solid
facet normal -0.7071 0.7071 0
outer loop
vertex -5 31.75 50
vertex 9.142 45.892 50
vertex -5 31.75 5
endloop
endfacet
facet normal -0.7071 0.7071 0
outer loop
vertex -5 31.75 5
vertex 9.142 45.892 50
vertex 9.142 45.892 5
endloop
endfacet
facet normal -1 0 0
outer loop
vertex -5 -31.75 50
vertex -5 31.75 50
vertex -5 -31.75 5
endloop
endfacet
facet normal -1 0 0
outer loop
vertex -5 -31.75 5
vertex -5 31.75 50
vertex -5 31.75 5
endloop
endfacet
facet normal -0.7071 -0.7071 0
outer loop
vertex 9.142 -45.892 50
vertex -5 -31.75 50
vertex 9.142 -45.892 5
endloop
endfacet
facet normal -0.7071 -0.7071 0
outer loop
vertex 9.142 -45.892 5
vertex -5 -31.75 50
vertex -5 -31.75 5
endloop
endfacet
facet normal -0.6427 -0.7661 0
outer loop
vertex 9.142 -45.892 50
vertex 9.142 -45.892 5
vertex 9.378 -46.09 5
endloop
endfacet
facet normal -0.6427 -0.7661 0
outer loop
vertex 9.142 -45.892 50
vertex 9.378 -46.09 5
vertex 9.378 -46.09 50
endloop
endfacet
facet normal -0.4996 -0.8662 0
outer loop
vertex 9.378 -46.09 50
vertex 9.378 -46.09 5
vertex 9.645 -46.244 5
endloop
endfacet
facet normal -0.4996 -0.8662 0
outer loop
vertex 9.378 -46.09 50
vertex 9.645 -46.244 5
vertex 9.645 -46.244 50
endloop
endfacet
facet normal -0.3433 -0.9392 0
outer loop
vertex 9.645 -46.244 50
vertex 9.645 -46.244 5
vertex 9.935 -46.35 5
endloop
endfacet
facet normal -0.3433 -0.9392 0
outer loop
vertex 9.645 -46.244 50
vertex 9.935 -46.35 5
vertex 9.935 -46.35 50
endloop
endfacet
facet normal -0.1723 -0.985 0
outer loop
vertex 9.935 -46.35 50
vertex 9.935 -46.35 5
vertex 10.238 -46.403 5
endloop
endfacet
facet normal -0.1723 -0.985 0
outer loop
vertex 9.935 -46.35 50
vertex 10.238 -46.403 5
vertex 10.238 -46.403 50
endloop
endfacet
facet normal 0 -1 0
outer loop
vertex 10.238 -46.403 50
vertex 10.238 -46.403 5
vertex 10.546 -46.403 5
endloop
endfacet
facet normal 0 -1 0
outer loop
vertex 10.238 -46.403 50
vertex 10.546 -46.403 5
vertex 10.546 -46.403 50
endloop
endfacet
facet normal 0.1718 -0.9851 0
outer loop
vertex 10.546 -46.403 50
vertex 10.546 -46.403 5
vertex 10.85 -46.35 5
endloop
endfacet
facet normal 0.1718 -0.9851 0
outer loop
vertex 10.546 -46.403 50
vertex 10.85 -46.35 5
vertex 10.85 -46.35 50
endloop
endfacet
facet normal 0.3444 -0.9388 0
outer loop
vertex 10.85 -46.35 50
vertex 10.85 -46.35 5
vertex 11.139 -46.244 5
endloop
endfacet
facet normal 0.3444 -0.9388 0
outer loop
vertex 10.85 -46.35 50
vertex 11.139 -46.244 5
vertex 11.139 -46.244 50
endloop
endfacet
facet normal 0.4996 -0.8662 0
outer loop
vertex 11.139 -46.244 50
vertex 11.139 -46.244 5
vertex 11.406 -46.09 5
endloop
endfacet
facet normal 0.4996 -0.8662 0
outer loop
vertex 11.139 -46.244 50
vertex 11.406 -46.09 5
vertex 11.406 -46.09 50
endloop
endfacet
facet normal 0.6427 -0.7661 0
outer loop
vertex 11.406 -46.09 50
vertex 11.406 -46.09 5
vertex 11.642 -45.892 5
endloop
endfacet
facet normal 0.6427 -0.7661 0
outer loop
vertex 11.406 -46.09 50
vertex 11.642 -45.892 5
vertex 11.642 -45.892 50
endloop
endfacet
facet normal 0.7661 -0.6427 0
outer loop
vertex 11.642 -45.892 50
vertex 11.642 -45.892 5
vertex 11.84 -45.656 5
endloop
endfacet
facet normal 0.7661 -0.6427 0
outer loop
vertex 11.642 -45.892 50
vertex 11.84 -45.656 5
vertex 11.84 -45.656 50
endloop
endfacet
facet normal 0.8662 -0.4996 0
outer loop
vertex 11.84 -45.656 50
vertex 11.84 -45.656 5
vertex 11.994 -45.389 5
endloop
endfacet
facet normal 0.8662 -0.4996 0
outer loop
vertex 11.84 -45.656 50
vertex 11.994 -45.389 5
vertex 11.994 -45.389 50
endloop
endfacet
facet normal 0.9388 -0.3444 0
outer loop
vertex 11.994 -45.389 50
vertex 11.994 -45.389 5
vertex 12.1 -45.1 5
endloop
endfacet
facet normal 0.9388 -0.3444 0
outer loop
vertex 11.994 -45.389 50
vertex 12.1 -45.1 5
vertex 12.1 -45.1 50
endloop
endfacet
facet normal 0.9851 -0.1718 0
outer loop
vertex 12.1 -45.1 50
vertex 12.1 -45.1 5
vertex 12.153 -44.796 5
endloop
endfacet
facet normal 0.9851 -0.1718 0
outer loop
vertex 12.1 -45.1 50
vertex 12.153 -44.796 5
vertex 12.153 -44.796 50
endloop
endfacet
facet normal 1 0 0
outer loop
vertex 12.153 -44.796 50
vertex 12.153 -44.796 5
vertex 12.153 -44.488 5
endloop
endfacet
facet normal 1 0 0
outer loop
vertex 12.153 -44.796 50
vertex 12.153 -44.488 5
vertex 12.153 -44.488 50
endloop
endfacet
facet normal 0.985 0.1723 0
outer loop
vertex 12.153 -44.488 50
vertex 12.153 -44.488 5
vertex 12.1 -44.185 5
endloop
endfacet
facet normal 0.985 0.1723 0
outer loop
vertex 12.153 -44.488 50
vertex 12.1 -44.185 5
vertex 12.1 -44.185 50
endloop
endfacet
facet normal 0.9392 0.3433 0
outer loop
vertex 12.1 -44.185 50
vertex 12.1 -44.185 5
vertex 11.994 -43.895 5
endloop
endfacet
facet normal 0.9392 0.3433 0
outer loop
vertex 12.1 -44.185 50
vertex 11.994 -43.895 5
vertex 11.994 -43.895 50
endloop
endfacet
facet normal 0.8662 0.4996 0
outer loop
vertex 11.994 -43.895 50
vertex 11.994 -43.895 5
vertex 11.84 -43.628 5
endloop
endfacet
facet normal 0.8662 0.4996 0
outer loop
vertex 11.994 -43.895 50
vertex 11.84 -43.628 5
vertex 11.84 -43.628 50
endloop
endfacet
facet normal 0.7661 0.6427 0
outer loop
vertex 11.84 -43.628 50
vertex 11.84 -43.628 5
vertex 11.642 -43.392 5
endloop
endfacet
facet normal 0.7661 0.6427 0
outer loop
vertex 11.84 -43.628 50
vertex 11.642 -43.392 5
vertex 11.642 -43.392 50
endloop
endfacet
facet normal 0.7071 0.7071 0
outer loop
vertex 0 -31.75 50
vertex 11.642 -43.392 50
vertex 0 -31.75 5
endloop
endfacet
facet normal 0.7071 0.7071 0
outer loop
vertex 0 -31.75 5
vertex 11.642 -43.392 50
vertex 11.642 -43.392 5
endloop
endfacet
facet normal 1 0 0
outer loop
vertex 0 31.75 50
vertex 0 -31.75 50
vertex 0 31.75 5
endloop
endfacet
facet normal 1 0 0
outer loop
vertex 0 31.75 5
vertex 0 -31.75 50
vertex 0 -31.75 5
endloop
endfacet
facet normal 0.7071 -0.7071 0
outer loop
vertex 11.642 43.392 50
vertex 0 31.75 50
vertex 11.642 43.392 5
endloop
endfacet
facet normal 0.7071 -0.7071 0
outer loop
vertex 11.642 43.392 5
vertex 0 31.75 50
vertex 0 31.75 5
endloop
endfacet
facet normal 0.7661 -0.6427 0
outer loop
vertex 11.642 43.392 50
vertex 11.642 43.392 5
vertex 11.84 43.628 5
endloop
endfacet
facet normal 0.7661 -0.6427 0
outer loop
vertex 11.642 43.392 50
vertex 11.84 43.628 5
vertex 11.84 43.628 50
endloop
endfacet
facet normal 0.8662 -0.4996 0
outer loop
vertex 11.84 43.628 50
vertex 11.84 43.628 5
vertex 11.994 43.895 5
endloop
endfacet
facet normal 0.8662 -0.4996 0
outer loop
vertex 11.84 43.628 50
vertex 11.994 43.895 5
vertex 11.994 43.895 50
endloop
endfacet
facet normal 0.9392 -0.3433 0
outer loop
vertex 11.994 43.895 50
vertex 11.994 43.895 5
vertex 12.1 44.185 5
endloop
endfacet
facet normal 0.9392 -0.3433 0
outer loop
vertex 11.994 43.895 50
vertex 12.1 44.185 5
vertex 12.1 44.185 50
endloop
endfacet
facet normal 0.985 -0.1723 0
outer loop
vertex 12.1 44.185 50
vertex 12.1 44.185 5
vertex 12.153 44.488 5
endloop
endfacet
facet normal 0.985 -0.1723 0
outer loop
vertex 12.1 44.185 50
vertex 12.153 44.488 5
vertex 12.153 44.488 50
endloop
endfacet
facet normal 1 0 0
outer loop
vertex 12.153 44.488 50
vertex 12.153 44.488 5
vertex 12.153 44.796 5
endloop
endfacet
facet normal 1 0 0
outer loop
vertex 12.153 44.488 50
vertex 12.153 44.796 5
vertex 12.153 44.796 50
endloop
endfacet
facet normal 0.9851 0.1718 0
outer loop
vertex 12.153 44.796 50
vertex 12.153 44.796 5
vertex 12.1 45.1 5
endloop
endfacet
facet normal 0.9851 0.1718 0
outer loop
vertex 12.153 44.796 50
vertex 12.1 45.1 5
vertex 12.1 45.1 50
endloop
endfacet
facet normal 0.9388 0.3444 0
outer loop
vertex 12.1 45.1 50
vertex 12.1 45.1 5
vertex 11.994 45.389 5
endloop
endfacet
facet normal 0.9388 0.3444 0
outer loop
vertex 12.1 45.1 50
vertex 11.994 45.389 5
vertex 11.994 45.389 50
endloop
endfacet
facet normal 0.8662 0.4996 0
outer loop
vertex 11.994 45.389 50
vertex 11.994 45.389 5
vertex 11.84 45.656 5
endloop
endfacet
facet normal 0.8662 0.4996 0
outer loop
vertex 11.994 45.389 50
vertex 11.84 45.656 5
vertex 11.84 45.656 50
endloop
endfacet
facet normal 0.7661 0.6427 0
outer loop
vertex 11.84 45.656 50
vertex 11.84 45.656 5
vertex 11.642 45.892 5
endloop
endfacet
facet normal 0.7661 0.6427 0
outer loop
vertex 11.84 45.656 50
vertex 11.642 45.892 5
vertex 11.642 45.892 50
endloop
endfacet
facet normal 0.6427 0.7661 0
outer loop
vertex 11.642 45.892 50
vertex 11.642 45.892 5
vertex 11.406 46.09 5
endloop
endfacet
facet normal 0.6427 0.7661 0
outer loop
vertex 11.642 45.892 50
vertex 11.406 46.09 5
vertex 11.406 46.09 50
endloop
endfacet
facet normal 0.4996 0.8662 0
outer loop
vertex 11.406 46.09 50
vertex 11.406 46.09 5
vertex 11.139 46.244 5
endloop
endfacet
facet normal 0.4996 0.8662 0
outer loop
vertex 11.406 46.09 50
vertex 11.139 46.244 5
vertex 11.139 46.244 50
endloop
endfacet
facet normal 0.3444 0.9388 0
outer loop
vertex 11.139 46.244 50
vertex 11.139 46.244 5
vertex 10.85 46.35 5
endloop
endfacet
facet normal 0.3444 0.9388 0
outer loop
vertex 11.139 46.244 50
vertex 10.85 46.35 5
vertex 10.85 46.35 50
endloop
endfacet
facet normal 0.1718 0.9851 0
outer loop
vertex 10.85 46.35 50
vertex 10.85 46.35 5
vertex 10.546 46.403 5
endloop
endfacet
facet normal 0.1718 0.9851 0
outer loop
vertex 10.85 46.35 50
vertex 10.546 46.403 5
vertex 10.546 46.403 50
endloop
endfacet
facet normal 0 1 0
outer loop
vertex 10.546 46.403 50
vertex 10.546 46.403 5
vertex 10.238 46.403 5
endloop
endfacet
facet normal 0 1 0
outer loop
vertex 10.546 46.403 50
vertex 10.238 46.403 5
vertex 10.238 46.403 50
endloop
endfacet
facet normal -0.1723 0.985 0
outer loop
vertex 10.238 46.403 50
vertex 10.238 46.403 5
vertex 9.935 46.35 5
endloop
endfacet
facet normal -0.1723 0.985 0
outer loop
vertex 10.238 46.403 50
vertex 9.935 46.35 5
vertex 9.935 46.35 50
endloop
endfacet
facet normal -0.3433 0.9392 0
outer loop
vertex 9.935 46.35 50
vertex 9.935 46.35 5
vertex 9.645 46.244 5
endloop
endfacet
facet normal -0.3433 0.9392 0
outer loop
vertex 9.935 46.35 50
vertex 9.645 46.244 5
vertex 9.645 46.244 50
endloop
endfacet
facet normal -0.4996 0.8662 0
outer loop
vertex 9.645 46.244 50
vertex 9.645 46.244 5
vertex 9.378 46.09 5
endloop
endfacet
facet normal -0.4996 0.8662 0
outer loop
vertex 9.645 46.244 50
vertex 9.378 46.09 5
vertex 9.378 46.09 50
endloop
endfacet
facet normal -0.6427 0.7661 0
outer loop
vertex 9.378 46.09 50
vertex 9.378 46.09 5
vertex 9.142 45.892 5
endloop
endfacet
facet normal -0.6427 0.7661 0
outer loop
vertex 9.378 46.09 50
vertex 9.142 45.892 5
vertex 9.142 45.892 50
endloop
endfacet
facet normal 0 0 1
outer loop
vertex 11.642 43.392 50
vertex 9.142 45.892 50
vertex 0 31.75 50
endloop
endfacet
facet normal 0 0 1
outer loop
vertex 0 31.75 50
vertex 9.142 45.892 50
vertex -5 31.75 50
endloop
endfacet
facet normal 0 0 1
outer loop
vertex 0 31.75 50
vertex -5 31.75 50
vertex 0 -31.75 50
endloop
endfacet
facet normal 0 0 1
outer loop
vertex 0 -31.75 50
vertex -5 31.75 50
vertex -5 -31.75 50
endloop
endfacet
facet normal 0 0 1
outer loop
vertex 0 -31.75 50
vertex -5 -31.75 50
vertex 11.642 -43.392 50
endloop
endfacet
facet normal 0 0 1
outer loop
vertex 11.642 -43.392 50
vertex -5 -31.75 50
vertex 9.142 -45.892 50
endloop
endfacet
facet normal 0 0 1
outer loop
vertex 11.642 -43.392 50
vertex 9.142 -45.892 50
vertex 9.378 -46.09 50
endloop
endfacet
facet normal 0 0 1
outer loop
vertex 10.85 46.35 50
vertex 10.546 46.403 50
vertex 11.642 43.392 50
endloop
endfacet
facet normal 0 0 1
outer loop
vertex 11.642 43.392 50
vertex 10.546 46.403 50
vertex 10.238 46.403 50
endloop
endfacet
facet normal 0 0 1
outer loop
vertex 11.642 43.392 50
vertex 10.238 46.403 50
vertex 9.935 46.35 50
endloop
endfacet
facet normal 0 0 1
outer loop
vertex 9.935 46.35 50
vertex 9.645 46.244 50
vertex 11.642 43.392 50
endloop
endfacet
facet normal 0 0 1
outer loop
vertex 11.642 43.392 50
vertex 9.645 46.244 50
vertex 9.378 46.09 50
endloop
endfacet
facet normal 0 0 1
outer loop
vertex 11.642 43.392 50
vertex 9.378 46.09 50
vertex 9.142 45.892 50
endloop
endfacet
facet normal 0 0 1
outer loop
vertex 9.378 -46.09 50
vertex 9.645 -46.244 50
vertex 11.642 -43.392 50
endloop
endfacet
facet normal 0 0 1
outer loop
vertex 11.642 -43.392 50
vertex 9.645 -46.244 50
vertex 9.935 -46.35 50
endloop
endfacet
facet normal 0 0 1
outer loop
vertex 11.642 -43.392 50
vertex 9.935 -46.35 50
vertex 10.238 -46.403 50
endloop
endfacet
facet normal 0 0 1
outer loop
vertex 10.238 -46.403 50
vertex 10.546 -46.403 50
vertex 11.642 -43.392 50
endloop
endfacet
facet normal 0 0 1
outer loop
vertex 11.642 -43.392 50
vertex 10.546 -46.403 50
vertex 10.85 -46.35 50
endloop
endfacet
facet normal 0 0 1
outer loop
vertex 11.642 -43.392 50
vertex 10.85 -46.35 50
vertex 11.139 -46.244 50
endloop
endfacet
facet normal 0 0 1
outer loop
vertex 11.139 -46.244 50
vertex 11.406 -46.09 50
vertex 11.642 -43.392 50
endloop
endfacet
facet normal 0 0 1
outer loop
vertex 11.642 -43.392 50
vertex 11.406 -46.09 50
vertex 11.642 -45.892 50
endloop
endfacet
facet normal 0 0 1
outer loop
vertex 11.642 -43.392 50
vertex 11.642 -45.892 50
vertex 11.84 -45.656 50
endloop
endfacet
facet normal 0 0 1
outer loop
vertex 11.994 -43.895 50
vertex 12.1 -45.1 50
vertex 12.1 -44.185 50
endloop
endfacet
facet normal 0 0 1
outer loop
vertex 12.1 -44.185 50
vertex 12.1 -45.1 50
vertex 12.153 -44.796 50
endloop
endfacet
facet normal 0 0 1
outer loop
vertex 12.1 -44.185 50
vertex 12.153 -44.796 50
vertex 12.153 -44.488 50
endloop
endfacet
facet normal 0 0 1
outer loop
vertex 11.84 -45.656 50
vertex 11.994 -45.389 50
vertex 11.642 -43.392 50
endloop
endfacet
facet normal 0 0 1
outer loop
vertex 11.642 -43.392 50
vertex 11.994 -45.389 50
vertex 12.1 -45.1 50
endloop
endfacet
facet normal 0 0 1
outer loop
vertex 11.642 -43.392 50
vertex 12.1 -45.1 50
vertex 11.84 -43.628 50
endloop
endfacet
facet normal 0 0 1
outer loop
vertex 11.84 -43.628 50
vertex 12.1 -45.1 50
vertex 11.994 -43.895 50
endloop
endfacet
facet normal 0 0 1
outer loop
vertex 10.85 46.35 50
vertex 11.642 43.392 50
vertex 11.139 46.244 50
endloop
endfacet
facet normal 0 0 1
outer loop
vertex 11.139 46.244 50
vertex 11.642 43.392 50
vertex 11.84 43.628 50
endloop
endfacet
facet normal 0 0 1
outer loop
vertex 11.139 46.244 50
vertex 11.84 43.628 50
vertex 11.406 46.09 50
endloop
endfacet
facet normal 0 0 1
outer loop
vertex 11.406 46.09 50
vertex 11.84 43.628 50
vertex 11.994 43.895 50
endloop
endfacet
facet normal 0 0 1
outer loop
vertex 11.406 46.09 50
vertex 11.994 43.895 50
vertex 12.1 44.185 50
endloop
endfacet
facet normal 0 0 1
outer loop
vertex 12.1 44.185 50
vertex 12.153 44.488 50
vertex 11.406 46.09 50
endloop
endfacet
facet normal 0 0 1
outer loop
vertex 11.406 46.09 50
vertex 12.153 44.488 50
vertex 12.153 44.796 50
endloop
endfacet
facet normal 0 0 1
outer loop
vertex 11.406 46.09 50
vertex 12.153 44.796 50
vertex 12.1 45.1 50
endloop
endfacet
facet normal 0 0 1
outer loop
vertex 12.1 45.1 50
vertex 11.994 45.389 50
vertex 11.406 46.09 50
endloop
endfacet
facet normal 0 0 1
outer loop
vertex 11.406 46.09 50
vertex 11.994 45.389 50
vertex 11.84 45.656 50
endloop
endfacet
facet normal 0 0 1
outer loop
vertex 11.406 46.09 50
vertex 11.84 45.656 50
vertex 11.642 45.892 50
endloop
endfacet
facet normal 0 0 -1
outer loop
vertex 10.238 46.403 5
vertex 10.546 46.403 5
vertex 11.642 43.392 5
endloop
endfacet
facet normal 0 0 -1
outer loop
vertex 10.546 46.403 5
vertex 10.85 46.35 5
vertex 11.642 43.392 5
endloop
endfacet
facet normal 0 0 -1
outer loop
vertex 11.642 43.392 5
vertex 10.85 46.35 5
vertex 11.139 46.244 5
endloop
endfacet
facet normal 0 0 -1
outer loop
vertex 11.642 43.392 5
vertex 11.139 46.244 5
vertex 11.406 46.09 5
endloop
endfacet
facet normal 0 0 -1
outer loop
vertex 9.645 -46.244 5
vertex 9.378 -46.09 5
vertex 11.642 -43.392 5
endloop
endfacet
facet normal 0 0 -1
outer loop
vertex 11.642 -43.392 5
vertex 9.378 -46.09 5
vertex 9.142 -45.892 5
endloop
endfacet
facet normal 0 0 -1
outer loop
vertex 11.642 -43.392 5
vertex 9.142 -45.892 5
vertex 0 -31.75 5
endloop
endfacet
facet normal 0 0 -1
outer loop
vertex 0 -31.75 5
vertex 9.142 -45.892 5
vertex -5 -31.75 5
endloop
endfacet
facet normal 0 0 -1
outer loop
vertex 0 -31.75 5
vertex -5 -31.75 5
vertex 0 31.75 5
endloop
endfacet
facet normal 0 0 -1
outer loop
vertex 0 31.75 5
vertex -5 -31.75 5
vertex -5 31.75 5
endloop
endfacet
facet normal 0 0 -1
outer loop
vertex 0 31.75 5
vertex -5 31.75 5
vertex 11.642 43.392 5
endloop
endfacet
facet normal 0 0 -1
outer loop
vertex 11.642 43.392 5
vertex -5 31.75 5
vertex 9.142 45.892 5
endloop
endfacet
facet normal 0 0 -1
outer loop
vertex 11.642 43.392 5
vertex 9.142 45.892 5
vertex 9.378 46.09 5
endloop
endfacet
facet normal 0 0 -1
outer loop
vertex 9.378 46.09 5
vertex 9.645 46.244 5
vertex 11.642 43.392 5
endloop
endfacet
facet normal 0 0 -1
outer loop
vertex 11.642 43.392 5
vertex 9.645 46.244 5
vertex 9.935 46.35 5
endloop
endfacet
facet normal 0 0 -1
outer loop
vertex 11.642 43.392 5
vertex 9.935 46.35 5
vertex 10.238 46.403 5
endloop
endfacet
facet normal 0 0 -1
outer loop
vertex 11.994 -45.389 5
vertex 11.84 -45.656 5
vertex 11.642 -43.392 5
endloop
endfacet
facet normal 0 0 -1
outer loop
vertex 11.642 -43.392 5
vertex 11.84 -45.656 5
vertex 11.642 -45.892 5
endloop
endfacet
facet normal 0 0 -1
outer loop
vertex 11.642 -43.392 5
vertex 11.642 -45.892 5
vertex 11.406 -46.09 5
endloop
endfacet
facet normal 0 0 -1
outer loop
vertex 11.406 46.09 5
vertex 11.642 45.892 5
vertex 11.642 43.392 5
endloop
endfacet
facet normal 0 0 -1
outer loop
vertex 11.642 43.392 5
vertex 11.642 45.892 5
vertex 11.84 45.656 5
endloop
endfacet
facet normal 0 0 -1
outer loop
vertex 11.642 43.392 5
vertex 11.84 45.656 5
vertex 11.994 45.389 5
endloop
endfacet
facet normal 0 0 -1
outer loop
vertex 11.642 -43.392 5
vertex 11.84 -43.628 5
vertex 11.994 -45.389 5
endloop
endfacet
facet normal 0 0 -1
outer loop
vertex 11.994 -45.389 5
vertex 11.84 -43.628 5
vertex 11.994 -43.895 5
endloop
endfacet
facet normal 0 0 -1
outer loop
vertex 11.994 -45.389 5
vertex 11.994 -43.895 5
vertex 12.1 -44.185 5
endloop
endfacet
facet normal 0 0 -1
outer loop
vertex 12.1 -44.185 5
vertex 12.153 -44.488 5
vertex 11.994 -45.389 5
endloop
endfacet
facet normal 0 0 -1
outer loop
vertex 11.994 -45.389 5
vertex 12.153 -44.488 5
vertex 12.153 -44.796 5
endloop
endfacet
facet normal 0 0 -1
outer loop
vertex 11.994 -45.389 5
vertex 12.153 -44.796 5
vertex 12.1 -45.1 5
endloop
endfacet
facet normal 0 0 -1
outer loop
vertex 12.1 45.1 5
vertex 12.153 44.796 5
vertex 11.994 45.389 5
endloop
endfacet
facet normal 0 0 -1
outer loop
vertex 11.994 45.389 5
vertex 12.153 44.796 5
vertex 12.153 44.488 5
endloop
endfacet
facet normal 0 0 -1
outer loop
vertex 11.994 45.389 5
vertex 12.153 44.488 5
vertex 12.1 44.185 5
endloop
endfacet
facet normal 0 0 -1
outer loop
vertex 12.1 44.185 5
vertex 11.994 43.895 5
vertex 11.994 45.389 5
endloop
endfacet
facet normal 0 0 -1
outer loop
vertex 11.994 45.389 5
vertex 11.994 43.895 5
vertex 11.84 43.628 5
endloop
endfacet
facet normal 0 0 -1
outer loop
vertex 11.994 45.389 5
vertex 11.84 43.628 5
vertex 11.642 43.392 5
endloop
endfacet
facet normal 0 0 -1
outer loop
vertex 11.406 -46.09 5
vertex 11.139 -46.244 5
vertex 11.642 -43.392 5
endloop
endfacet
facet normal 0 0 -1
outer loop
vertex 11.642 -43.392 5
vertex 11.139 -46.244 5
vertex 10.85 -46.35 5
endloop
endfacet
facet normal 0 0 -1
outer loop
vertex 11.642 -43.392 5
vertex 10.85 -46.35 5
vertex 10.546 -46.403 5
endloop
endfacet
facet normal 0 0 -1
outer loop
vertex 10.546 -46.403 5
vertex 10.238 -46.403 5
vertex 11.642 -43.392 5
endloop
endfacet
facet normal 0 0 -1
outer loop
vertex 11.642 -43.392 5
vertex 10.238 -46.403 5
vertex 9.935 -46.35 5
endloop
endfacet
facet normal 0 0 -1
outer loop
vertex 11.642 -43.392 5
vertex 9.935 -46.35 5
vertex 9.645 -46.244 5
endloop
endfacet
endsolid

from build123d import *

# Parameters (mm, degrees)
SALIENTE_EXTRUIR1_DEPTH = 50
CORTAR_EXTRUIR3_DEPTH   = 5


with BuildPart() as part:
    # Croquis1 → Saliente-Extruir1 (new body)
    with BuildSketch(Plane.XY):
        with BuildLine():
            Line((-5, 31.75), (-5, -31.75))
            Line((-5, -31.75), (9.142135624, -45.892135624))
            ThreePointArc((9.142135624, -45.892135624), (11.642135624, -45.892135624), (11.642135624, -43.392135624))
            Line((11.642135624, -43.392135624), (0, -31.75))
            Line((0, -31.75), (0, 31.75))
            Line((0, 31.75), (11.642135624, 43.392135624))
            ThreePointArc((11.642135624, 43.392135624), (11.642135624, 45.892135624), (9.142135624, 45.892135624))
            Line((9.142135624, 45.892135624), (-5, 31.75))
        make_face()
    extrude(amount=SALIENTE_EXTRUIR1_DEPTH)

    # Croquis4 → Cortar-Extruir3 (cut)
    with BuildSketch(Plane(origin=(0, 0, 0), x_dir=(-1, 0, 0), z_dir=(0, 0, -1))):
        with BuildLine():
            Line((5, 31.75), (-9.142135624, 45.892135624))
            ThreePointArc((-9.142135624, 45.892135624), (-11.642135624, 45.892135624), (-11.642135624, 43.392135624))
            Line((-11.642135624, 43.392135624), (0, 31.75))
            Line((0, 31.75), (0, -31.75))
            Line((0, -31.75), (-11.642135624, -43.392135624))
            ThreePointArc((-11.642135624, -43.392135624), (-11.642135624, -45.892135624), (-9.142135624, -45.892135624))
            Line((-9.142135624, -45.892135624), (5, -31.75))
            Line((5, -31.75), (5, 31.75))
        make_face()
    extrude(amount=-CORTAR_EXTRUIR3_DEPTH, mode=Mode.SUBTRACT)


solid = part.part
